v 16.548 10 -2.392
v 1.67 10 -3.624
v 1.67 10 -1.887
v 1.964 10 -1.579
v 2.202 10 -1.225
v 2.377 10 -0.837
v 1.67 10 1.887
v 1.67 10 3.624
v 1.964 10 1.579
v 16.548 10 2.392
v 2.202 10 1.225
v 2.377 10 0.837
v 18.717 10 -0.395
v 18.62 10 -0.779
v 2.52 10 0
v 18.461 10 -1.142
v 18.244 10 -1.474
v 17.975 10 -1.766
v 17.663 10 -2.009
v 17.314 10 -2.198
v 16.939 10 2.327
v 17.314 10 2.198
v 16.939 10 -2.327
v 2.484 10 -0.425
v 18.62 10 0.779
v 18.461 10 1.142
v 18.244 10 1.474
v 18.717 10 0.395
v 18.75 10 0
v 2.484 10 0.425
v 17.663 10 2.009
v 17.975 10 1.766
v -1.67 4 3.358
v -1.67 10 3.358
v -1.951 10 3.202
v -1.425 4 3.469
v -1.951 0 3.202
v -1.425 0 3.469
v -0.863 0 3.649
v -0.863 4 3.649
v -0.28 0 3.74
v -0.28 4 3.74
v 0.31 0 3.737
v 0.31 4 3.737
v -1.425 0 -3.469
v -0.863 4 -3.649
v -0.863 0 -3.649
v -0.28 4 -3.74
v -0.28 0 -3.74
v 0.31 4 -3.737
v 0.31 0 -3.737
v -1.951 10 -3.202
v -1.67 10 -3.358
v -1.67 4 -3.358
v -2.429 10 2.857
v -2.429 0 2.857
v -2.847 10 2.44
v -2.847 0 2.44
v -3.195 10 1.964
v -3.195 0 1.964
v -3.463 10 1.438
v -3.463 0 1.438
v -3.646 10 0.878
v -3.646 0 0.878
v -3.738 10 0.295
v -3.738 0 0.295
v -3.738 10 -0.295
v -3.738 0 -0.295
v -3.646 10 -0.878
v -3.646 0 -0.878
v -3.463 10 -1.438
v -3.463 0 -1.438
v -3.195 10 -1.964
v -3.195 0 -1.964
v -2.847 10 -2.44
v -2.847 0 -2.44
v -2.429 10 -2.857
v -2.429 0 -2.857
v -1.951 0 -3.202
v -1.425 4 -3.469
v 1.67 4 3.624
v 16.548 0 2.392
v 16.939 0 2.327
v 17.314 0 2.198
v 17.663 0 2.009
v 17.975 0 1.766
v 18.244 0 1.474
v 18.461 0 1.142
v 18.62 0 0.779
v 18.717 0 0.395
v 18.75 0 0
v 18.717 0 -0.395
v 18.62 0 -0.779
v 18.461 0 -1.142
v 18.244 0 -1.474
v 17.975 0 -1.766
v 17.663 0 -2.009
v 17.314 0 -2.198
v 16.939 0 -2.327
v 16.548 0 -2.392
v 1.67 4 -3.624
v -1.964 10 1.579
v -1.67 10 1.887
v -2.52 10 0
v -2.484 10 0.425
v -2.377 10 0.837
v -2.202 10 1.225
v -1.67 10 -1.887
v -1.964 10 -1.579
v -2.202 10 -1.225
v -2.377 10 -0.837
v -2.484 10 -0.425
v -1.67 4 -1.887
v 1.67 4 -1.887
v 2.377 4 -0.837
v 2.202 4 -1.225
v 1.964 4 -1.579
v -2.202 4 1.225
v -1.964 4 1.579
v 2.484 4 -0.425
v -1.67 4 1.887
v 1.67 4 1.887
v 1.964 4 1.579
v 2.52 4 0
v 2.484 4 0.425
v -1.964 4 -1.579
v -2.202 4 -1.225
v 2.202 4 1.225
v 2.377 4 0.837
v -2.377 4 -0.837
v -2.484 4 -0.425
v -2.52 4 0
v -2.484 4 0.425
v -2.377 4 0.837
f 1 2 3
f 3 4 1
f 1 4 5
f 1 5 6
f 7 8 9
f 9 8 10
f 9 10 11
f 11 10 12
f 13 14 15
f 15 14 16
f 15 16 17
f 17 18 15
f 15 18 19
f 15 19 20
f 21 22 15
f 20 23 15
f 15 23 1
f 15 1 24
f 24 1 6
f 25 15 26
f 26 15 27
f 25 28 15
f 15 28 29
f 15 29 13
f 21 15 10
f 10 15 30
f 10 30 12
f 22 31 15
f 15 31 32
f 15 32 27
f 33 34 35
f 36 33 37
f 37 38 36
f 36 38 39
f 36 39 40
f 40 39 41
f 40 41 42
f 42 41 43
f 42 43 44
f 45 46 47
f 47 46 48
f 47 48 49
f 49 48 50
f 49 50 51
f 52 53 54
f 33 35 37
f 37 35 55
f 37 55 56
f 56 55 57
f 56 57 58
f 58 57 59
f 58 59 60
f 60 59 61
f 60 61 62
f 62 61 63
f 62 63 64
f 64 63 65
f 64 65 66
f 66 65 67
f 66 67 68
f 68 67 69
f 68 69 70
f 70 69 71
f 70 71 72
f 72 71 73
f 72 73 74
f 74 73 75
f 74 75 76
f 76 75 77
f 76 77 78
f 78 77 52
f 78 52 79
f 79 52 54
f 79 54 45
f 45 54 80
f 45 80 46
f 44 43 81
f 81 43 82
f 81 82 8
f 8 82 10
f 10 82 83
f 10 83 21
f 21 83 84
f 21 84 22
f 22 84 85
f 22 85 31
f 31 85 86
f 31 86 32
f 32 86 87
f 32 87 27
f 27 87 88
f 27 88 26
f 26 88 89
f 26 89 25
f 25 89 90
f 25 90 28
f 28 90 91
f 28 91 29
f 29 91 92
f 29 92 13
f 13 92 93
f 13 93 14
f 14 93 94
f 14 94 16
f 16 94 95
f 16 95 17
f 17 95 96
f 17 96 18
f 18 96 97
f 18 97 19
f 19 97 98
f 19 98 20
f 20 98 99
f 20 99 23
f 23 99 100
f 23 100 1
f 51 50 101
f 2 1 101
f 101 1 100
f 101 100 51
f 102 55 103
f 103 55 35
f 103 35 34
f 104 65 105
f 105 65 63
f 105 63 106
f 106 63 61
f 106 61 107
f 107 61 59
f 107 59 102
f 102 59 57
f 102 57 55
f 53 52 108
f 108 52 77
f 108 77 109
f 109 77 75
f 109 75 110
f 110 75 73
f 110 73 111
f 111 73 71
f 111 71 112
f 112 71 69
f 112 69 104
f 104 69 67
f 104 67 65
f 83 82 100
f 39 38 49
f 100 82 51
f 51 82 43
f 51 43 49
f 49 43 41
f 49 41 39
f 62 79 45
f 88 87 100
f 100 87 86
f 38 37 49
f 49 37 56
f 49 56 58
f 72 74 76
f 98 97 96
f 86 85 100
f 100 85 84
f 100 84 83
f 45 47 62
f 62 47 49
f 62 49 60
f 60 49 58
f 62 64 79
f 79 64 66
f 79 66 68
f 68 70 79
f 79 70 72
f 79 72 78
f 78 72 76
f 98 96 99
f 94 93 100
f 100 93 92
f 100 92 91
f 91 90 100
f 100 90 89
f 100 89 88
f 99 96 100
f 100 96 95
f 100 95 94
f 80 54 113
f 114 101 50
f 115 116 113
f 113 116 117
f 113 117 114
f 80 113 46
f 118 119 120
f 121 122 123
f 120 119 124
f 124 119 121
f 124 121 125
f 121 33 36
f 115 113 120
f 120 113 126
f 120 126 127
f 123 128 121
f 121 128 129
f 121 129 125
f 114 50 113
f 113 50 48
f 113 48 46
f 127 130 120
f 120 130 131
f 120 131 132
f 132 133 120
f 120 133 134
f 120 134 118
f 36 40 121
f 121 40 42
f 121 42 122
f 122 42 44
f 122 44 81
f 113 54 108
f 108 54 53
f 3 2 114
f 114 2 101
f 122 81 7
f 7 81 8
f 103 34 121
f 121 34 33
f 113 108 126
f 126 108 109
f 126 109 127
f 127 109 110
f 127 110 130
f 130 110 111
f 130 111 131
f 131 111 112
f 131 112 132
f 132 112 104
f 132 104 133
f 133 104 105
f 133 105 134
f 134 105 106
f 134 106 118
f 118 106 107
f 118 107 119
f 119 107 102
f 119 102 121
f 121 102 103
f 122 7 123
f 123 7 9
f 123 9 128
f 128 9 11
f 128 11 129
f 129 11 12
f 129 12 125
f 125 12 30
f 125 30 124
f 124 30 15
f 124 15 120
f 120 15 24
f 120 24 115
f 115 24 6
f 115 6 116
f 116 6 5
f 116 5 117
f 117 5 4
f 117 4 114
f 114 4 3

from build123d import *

# Parameters (mm, degrees)
BOSS_EXTRUDE1_DEPTH = 10
CUT_EXTRUDE1_DEPTH  = 6


with BuildPart() as part:
    # Sketch1 → Boss-Extrude1 (new body)
    with BuildSketch(Plane(origin=(0, 0, 0), x_dir=(1, 0, 0), z_dir=(0, 1, 0))):
        with BuildLine():
            Line((0.309633028, -3.737195123), (16.548165138, -2.391804879))
            ThreePointArc((16.548165138, -2.391804879), (18.75, 0), (16.548165138, 2.391804879))
            Line((16.548165138, 2.391804879), (0.309633028, 3.737195123))
            ThreePointArc((0.309633028, 3.737195123), (-3.75, 0), (0.309633028, -3.737195123))
        make_face()
    extrude(amount=BOSS_EXTRUDE1_DEPTH)

    # Sketch2 → Cut-Extrude1 (cut)
    with BuildSketch(Plane(origin=(0, 10, 0), x_dir=(1, 0, 0), z_dir=(0, 1, 0))):
        with BuildLine():
            Line((-1.67, -1.887193684), (-1.67, -5.52))
            Line((-1.67, -5.52), (1.67, -5.52))
            Line((1.67, -5.52), (1.67, -1.887193684))
            ThreePointArc((1.67, -1.887193684), (2.52, 0), (1.67, 1.887193684))
            Line((1.67, 1.887193684), (1.67, 5.52))
            Line((1.67, 5.52), (-1.67, 5.52))
            Line((-1.67, 5.52), (-1.67, 1.887193684))
            ThreePointArc((-1.67, 1.887193684), (-2.52, 0), (-1.67, -1.887193684))
        make_face()
    extrude(amount=-CUT_EXTRUDE1_DEPTH, mode=Mode.SUBTRACT)


solid = part.part
